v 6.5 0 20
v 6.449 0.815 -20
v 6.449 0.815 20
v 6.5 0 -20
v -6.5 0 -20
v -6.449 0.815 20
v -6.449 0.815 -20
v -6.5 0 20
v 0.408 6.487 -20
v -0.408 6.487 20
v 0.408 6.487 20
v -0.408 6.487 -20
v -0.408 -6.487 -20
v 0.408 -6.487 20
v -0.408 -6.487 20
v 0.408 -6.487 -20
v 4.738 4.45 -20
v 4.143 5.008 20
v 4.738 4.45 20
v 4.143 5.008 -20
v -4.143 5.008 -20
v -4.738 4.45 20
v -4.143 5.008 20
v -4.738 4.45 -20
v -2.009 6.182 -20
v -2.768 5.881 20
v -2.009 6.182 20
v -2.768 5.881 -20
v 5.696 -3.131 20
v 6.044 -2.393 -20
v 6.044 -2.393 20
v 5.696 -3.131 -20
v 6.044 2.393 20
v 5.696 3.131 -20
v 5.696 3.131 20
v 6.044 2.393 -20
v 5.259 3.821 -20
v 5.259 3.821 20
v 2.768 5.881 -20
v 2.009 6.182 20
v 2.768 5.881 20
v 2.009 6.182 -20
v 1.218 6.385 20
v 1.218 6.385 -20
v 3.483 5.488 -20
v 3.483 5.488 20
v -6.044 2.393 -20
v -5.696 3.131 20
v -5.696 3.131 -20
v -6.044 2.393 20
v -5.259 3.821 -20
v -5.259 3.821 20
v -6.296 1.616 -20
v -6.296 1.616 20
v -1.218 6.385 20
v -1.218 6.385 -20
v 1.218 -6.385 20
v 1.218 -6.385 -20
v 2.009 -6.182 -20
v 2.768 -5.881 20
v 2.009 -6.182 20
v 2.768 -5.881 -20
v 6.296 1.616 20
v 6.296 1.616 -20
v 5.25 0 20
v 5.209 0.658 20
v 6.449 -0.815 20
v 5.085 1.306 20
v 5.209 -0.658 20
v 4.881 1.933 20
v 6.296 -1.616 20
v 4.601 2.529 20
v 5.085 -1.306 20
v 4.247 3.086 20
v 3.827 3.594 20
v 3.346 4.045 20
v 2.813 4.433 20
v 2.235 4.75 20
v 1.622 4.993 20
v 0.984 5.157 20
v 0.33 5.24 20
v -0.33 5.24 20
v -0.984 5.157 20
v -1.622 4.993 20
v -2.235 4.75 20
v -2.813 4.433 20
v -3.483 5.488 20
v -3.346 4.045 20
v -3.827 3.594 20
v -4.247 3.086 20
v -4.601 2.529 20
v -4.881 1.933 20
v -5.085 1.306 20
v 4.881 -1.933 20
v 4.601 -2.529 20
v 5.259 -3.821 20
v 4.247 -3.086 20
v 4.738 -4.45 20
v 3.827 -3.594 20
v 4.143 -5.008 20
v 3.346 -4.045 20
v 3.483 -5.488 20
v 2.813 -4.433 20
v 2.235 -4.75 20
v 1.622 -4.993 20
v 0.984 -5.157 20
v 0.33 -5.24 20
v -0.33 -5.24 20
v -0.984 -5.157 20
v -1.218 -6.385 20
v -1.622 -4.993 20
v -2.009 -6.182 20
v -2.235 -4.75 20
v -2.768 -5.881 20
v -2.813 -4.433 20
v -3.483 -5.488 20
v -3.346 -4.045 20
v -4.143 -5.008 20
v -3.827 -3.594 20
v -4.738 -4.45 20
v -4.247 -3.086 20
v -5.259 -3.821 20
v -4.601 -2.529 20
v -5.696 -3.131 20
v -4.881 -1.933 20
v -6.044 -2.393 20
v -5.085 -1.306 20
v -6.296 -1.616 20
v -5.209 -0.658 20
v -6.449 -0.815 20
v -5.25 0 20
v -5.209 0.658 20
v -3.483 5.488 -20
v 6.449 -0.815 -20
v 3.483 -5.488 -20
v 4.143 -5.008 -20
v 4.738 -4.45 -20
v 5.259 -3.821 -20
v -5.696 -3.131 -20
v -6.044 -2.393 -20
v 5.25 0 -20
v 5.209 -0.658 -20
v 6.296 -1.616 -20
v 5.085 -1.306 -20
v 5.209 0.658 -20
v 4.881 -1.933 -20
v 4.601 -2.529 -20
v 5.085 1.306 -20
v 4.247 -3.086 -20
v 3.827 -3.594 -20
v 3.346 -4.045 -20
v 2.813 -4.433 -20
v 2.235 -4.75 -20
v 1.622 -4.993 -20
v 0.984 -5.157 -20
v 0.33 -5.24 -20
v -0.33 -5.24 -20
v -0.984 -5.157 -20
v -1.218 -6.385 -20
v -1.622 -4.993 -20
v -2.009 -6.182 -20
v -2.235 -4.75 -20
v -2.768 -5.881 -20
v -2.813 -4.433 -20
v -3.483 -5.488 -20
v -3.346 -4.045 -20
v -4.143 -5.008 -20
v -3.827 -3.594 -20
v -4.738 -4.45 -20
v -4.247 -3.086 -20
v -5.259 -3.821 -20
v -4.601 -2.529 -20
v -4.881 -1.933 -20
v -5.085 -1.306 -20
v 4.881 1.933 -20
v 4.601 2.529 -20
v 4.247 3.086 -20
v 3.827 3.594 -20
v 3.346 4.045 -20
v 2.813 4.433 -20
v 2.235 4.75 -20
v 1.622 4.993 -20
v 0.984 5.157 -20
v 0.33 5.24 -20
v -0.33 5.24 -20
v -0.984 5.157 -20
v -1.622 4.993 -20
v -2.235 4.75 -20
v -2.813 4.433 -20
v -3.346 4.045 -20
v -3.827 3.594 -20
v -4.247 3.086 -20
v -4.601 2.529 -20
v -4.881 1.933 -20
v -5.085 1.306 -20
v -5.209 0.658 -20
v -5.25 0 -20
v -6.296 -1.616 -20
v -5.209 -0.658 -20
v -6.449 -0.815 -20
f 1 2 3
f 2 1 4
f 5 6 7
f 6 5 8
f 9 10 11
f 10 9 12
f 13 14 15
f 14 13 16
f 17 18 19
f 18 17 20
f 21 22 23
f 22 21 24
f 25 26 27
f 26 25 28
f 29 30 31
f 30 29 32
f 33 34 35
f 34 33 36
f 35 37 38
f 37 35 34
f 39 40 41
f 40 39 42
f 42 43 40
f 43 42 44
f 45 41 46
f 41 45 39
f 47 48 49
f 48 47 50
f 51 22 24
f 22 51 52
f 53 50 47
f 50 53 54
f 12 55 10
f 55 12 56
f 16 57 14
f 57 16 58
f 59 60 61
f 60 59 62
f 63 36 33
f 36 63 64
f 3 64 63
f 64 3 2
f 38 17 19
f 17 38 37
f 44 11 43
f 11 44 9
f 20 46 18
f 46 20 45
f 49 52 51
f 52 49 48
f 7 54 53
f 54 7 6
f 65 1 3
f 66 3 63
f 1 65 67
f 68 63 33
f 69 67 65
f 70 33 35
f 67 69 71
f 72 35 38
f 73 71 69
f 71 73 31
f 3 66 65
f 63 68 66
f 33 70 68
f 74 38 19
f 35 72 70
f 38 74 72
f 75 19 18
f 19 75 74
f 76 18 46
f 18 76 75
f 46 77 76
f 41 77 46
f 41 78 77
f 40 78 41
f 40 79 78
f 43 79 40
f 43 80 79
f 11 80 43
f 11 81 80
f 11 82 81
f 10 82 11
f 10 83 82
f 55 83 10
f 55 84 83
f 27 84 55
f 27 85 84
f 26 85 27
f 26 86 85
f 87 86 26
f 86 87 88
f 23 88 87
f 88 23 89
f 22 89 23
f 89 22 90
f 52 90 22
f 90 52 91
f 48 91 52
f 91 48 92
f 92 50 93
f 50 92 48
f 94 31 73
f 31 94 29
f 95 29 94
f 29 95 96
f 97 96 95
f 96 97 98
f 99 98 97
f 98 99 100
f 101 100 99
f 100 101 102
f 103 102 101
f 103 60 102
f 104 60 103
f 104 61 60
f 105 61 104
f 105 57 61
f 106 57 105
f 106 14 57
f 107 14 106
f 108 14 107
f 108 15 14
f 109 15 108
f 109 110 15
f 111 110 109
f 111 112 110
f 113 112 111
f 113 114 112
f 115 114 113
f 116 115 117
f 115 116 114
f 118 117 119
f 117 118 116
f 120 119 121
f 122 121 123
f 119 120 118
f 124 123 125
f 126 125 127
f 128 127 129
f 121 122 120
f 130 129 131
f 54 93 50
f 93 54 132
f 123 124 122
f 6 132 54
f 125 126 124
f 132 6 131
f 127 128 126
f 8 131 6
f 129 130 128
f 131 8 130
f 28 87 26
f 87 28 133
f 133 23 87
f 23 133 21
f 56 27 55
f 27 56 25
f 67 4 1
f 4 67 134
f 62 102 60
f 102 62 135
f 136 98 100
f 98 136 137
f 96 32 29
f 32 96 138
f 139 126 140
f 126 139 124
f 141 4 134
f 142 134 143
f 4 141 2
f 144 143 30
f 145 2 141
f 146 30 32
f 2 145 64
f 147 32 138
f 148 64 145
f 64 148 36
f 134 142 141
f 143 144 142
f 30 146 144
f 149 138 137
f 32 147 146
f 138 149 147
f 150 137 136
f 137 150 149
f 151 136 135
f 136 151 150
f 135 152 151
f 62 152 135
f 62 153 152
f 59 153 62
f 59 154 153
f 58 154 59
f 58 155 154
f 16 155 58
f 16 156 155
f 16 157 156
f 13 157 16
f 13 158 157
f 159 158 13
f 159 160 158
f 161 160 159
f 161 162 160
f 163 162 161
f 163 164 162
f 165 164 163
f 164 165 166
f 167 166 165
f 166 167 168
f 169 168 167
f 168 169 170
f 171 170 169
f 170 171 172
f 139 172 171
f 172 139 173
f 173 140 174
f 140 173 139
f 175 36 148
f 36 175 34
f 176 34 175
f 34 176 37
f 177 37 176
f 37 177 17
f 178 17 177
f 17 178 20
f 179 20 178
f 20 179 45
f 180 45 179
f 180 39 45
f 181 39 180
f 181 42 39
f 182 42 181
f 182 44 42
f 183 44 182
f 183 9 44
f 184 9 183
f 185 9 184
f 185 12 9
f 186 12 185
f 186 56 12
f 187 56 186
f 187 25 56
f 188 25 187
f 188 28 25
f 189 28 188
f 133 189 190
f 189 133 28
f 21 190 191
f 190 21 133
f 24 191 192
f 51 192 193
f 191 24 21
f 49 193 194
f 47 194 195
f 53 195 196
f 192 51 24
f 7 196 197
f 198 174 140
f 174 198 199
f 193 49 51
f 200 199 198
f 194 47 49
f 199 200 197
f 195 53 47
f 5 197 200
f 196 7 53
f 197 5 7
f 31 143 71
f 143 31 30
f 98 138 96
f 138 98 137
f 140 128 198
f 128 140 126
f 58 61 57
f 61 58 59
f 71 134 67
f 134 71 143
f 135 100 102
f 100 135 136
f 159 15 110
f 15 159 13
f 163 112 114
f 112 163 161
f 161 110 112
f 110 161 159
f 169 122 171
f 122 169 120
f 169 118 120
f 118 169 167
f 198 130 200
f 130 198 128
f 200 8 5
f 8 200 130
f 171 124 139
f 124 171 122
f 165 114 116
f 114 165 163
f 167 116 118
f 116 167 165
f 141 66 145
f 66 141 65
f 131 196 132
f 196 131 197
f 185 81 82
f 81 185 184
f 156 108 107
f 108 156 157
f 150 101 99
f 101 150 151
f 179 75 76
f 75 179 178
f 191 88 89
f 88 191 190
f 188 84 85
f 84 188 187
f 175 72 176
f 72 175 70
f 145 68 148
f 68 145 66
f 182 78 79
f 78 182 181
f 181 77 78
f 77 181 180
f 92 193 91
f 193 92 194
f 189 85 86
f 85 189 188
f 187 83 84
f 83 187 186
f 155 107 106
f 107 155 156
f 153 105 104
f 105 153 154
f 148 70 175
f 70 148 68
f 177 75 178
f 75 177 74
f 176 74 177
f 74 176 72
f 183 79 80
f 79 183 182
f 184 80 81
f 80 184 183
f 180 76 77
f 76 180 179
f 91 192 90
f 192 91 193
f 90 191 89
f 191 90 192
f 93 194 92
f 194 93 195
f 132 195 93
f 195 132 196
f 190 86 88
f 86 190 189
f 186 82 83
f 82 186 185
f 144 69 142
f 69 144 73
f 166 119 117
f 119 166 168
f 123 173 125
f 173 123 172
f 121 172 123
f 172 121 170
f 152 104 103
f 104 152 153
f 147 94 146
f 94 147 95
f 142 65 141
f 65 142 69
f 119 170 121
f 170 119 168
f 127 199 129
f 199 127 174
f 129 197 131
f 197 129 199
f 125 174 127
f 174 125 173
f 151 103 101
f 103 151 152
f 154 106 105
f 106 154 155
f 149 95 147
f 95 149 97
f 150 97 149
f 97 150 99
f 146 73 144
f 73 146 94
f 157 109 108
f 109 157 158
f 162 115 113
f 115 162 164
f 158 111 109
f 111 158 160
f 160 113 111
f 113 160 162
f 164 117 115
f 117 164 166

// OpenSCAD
$fn = 50;


difference() {
	union() {
		translate(v = [0, 0, -20.0000000000]) {
			cylinder(h = 40, r = 6.5000000000);
		}
	}
	union() {
		translate(v = [0, 0, -100.0000000000]) {
			cylinder(h = 200, r = 5.2500000000);
		}
	}
}
